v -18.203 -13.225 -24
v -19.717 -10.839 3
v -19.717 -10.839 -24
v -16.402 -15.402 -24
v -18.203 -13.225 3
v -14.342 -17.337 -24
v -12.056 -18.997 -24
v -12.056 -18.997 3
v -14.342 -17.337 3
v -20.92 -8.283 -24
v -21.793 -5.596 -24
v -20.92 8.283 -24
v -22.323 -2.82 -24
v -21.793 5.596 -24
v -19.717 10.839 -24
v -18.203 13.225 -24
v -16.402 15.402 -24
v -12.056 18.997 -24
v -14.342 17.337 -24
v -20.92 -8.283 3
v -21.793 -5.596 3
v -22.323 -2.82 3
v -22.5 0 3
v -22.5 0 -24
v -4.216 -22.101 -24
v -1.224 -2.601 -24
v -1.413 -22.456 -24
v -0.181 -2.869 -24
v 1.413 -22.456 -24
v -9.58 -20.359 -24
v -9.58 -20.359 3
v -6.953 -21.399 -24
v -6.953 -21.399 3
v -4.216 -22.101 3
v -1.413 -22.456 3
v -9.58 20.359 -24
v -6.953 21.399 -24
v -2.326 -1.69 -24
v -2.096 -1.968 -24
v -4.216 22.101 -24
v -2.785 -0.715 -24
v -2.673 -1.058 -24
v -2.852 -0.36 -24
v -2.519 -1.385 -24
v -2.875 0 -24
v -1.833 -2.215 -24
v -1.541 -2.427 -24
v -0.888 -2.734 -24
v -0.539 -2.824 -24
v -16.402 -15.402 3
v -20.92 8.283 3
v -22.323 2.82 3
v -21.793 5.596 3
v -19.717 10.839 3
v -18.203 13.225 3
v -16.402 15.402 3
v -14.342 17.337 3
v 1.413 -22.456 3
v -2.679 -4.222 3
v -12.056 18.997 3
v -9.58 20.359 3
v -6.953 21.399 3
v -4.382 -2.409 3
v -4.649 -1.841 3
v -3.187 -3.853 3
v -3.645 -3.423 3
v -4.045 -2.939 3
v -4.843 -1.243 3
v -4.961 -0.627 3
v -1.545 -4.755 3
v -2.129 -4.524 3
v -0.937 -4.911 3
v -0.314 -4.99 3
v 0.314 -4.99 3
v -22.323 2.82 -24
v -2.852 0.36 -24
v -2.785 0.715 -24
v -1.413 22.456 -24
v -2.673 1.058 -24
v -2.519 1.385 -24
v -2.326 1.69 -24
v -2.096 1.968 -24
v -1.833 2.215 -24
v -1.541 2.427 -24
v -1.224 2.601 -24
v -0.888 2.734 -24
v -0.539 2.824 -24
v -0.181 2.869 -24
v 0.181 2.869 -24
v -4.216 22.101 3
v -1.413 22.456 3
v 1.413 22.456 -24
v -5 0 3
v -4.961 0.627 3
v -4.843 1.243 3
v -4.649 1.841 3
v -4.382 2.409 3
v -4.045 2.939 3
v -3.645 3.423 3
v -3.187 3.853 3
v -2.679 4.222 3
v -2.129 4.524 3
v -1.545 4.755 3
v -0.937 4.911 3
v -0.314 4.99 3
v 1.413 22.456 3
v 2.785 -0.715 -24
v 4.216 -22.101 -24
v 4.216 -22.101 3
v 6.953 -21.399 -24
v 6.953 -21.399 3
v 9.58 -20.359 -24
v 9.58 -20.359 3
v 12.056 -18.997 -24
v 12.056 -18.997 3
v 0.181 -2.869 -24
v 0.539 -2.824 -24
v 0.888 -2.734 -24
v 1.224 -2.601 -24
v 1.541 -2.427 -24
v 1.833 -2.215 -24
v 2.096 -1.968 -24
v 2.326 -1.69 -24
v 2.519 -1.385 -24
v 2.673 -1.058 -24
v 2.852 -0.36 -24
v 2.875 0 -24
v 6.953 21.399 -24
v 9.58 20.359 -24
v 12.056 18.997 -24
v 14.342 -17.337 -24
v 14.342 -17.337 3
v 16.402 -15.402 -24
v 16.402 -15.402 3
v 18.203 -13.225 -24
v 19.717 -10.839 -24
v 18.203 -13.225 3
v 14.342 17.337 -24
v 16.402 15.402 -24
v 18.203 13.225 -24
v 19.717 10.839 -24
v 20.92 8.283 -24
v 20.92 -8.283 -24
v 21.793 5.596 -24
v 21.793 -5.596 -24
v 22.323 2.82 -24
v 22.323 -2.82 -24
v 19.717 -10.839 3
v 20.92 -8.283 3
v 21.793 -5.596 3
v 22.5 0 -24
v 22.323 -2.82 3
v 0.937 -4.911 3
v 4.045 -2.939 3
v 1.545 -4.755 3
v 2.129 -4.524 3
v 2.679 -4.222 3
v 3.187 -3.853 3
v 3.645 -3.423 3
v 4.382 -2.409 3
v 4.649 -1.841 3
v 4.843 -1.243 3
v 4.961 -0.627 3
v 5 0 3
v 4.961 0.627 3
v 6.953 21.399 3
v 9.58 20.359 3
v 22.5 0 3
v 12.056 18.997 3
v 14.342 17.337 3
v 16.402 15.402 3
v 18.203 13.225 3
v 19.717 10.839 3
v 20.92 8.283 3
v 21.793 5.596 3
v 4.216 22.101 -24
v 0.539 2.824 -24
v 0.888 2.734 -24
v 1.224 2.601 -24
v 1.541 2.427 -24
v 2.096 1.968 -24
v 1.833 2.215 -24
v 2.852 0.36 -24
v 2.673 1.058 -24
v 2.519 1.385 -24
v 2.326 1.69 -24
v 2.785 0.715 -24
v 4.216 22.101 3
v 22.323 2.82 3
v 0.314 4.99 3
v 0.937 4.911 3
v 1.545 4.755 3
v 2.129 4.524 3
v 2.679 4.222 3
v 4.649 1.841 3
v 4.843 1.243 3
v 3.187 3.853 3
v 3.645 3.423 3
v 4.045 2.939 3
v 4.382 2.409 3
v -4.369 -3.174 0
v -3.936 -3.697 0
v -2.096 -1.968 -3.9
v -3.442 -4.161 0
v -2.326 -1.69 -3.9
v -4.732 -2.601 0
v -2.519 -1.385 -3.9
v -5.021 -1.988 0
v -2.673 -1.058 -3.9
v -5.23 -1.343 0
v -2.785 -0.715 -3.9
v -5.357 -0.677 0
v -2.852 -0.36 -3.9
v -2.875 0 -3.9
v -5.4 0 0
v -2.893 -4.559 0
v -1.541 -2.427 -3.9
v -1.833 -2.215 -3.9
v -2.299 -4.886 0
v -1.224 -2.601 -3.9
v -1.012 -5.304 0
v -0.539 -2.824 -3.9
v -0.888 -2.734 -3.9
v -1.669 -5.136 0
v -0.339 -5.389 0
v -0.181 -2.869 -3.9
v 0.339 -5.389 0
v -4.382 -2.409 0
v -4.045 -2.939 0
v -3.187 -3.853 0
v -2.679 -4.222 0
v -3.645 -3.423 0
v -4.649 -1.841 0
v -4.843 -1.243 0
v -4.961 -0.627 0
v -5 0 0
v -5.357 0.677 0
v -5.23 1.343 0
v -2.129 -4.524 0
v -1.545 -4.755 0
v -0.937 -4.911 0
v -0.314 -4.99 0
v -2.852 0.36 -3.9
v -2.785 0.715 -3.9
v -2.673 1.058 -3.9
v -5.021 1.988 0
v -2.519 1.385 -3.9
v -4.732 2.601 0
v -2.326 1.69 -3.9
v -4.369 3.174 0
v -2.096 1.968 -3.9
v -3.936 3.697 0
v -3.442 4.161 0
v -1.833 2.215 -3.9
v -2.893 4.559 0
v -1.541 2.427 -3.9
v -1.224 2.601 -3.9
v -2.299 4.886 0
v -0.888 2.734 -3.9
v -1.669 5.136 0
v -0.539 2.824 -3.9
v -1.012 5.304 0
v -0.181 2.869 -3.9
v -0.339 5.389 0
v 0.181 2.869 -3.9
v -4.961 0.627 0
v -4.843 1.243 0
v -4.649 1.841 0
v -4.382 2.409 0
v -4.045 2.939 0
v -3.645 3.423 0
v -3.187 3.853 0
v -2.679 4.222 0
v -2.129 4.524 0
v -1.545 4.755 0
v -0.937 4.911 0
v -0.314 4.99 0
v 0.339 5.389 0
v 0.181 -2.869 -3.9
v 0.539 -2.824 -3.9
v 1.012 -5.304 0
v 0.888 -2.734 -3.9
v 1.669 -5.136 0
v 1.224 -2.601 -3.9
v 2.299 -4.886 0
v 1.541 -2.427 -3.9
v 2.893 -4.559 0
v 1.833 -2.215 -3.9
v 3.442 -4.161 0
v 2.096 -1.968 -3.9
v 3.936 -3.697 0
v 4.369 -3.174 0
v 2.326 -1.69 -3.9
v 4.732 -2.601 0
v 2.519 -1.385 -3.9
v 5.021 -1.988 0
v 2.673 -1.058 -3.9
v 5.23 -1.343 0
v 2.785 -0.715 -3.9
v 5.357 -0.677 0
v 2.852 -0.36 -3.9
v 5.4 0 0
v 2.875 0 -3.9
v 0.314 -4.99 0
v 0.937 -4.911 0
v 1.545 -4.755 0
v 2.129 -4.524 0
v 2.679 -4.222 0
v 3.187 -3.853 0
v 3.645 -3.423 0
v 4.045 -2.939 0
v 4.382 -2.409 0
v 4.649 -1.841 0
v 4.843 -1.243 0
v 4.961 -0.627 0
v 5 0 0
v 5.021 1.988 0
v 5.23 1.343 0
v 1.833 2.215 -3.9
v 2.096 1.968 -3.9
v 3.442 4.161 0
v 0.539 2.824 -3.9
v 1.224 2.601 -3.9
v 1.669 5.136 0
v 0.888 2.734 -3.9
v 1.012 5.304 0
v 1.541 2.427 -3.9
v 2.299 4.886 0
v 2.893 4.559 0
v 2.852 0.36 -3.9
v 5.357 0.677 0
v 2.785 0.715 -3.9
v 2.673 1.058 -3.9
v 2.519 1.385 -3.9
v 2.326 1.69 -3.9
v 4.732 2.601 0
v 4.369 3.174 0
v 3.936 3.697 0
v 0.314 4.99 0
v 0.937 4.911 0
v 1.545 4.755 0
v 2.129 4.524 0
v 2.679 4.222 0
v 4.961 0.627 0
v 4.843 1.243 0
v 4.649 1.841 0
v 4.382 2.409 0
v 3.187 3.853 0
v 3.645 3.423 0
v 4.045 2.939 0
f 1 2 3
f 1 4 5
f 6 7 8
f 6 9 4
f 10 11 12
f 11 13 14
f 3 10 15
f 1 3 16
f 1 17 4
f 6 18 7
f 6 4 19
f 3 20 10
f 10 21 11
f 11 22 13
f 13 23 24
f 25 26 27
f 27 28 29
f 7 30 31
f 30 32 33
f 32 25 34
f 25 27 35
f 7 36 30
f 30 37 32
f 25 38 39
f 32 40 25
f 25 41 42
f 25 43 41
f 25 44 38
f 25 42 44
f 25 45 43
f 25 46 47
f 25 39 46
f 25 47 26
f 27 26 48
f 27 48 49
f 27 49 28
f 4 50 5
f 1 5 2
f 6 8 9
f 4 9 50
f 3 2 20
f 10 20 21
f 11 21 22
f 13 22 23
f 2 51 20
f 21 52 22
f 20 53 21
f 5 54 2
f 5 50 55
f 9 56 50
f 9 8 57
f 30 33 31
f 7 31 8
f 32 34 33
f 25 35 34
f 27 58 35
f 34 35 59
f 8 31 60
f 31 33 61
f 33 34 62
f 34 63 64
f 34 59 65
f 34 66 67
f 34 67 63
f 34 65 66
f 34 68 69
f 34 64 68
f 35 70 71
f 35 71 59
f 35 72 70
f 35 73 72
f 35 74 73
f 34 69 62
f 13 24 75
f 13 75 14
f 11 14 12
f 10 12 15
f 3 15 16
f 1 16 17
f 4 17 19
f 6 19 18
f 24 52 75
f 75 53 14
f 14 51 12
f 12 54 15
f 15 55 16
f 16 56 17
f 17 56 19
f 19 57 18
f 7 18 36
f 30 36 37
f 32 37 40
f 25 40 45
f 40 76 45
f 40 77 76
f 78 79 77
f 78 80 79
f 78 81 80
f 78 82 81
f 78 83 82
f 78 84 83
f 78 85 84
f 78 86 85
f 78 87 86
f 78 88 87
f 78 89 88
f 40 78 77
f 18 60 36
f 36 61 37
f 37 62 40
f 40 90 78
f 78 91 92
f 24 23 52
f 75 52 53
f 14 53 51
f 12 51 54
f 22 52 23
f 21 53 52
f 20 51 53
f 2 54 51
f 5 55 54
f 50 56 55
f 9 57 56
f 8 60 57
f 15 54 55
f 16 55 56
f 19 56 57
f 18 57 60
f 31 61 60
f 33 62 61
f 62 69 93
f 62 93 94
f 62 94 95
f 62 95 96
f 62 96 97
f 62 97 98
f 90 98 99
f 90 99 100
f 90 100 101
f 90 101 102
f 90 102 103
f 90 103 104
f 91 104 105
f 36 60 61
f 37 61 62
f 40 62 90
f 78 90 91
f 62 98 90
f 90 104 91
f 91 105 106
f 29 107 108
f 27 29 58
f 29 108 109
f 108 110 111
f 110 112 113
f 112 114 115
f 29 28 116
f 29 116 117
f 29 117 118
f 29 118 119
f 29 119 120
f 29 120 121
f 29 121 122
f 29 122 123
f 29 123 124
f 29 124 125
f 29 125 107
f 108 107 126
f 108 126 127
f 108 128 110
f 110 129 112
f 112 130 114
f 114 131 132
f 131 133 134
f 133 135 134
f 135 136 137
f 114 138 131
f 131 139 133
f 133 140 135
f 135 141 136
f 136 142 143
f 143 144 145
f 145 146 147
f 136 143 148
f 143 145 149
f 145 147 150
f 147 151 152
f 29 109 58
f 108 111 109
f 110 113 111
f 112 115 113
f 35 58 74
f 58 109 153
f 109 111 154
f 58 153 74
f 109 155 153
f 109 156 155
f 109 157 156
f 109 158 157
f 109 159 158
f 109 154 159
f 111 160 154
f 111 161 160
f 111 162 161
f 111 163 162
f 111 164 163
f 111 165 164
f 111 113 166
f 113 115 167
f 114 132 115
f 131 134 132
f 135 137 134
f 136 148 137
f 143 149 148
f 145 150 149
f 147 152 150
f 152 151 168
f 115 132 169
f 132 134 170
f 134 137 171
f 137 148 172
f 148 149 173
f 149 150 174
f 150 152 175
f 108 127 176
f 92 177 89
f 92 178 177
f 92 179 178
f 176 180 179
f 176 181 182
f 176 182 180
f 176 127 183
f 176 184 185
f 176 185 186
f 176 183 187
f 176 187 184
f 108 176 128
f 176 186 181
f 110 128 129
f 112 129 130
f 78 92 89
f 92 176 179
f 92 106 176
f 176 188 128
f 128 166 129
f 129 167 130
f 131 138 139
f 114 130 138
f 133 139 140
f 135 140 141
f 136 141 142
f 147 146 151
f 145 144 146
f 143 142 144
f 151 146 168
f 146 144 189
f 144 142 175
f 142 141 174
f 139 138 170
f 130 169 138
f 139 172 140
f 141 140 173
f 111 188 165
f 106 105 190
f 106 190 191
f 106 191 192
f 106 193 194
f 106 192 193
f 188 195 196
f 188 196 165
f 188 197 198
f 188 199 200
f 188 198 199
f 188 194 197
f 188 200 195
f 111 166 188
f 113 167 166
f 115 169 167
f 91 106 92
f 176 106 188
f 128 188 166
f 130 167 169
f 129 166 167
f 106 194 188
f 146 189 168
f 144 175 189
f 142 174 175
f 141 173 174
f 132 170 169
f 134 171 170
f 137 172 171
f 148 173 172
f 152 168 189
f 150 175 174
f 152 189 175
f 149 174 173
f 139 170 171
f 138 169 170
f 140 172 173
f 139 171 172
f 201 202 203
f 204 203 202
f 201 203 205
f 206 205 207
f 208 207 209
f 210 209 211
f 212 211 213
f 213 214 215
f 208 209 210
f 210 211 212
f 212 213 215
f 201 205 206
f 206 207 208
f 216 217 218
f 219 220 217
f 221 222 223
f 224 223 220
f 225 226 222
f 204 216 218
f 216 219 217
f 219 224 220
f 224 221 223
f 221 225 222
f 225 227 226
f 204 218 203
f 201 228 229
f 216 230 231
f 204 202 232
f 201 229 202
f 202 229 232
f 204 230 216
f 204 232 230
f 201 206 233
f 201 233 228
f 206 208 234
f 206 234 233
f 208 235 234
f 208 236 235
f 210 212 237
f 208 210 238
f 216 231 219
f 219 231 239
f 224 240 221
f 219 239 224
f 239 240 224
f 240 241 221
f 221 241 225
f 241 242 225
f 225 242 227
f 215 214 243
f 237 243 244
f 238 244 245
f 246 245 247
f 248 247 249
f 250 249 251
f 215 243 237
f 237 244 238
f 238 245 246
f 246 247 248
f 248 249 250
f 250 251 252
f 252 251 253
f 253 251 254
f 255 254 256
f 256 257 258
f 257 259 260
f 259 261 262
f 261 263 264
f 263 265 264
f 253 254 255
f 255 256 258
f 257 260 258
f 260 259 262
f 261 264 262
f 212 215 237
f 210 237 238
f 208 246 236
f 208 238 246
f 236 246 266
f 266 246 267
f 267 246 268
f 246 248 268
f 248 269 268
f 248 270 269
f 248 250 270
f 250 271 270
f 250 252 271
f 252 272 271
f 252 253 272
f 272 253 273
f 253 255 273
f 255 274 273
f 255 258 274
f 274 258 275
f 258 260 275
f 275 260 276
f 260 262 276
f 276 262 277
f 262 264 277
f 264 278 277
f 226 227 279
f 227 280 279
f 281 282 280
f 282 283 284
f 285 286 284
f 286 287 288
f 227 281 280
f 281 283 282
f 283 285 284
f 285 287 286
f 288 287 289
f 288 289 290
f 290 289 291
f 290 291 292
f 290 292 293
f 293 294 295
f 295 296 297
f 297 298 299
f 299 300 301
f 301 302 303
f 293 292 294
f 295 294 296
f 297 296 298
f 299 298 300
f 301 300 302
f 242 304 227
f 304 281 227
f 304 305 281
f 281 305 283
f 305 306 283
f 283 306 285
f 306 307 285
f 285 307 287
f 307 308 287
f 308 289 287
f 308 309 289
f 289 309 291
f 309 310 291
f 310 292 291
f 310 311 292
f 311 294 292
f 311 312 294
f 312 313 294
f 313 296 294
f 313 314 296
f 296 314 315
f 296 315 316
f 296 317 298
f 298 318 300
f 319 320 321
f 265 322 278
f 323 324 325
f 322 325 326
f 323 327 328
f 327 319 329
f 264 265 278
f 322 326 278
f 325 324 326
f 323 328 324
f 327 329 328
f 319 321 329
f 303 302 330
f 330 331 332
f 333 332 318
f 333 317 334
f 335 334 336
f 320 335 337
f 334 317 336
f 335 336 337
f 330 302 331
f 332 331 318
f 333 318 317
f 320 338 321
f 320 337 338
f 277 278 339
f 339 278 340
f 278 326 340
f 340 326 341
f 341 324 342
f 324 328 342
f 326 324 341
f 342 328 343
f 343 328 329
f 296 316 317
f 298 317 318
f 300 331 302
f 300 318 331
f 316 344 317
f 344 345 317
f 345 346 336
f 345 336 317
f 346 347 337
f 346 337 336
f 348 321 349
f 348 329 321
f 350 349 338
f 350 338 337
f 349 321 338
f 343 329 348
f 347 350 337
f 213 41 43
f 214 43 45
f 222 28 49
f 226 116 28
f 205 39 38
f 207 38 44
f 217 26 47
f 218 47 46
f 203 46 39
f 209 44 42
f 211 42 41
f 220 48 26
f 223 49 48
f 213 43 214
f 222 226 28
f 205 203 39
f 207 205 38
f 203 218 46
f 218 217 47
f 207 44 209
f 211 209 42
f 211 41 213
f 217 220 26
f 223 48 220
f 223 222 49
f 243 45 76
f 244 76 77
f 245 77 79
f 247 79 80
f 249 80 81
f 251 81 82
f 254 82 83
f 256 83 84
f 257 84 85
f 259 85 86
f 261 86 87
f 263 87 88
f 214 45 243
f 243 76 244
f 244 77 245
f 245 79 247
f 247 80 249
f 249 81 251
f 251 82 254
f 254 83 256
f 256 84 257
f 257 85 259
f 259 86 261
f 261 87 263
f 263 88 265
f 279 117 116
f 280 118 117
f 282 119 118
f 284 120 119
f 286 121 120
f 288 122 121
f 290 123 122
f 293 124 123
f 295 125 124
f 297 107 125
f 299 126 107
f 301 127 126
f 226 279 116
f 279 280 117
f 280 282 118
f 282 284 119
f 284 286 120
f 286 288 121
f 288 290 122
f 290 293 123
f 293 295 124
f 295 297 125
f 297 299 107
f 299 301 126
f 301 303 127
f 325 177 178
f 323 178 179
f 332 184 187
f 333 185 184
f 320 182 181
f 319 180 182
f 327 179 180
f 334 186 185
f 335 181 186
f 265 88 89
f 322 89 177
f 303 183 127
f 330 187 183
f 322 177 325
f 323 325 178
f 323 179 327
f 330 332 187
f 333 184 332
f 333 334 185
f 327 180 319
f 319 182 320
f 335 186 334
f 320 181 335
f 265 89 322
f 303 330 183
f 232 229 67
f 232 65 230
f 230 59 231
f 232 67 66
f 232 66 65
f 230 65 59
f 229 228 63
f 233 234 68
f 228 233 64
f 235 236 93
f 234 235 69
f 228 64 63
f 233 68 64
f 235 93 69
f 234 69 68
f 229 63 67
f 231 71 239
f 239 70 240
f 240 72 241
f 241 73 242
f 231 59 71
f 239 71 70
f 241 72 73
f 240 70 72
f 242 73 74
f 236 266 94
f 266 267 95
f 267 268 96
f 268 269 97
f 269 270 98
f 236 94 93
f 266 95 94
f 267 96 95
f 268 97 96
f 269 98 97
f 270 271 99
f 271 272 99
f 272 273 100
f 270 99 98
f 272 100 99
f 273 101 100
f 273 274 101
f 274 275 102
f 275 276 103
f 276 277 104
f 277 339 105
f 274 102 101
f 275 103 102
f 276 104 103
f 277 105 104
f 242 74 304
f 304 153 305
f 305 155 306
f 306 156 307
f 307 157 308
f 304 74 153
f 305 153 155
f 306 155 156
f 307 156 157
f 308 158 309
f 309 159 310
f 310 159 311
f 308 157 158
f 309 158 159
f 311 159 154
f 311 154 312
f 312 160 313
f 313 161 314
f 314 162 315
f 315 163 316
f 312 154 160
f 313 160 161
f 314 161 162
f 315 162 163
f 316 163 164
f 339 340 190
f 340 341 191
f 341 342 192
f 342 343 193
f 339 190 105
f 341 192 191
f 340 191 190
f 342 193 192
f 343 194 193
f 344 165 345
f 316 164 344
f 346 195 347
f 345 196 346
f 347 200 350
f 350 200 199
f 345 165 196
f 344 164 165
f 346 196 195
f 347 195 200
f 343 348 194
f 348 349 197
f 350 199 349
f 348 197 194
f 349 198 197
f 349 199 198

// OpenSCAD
$fn = 50;

difference() {
	union() {
		translate(v = [0, 0, -24.0]) {
			cylinder(h = 27, r = 22.5);
		}
		#translate(v = [0, 0, -27.0]) {
			cylinder(h = 27, r = 2.875);
		}
	}
	union() {
		translate(v = [0, 0, 0]) {
			rotate(a = [0, 0, 0]) {
				difference() {
					union() {
						translate(v = [0, 0, -27.0]) {
							cylinder(h = 27, r = 2.6);
						}
						translate(v = [0, 0, -3.9]) {
							cylinder(h = 3.9, r1 = 2.875, r2 = 5.4);
						}
						translate(v = [0, 0, -27.0]) {
							cylinder(h = 27, r = 2.875);
						}
						translate(v = [0, 0, -27.0]) {
							cylinder(h = 27, r = 2.6);
						}
					}
					union();
				}
			}
		}
		#cylinder(h = 3, r = 5.0);
	}
}
